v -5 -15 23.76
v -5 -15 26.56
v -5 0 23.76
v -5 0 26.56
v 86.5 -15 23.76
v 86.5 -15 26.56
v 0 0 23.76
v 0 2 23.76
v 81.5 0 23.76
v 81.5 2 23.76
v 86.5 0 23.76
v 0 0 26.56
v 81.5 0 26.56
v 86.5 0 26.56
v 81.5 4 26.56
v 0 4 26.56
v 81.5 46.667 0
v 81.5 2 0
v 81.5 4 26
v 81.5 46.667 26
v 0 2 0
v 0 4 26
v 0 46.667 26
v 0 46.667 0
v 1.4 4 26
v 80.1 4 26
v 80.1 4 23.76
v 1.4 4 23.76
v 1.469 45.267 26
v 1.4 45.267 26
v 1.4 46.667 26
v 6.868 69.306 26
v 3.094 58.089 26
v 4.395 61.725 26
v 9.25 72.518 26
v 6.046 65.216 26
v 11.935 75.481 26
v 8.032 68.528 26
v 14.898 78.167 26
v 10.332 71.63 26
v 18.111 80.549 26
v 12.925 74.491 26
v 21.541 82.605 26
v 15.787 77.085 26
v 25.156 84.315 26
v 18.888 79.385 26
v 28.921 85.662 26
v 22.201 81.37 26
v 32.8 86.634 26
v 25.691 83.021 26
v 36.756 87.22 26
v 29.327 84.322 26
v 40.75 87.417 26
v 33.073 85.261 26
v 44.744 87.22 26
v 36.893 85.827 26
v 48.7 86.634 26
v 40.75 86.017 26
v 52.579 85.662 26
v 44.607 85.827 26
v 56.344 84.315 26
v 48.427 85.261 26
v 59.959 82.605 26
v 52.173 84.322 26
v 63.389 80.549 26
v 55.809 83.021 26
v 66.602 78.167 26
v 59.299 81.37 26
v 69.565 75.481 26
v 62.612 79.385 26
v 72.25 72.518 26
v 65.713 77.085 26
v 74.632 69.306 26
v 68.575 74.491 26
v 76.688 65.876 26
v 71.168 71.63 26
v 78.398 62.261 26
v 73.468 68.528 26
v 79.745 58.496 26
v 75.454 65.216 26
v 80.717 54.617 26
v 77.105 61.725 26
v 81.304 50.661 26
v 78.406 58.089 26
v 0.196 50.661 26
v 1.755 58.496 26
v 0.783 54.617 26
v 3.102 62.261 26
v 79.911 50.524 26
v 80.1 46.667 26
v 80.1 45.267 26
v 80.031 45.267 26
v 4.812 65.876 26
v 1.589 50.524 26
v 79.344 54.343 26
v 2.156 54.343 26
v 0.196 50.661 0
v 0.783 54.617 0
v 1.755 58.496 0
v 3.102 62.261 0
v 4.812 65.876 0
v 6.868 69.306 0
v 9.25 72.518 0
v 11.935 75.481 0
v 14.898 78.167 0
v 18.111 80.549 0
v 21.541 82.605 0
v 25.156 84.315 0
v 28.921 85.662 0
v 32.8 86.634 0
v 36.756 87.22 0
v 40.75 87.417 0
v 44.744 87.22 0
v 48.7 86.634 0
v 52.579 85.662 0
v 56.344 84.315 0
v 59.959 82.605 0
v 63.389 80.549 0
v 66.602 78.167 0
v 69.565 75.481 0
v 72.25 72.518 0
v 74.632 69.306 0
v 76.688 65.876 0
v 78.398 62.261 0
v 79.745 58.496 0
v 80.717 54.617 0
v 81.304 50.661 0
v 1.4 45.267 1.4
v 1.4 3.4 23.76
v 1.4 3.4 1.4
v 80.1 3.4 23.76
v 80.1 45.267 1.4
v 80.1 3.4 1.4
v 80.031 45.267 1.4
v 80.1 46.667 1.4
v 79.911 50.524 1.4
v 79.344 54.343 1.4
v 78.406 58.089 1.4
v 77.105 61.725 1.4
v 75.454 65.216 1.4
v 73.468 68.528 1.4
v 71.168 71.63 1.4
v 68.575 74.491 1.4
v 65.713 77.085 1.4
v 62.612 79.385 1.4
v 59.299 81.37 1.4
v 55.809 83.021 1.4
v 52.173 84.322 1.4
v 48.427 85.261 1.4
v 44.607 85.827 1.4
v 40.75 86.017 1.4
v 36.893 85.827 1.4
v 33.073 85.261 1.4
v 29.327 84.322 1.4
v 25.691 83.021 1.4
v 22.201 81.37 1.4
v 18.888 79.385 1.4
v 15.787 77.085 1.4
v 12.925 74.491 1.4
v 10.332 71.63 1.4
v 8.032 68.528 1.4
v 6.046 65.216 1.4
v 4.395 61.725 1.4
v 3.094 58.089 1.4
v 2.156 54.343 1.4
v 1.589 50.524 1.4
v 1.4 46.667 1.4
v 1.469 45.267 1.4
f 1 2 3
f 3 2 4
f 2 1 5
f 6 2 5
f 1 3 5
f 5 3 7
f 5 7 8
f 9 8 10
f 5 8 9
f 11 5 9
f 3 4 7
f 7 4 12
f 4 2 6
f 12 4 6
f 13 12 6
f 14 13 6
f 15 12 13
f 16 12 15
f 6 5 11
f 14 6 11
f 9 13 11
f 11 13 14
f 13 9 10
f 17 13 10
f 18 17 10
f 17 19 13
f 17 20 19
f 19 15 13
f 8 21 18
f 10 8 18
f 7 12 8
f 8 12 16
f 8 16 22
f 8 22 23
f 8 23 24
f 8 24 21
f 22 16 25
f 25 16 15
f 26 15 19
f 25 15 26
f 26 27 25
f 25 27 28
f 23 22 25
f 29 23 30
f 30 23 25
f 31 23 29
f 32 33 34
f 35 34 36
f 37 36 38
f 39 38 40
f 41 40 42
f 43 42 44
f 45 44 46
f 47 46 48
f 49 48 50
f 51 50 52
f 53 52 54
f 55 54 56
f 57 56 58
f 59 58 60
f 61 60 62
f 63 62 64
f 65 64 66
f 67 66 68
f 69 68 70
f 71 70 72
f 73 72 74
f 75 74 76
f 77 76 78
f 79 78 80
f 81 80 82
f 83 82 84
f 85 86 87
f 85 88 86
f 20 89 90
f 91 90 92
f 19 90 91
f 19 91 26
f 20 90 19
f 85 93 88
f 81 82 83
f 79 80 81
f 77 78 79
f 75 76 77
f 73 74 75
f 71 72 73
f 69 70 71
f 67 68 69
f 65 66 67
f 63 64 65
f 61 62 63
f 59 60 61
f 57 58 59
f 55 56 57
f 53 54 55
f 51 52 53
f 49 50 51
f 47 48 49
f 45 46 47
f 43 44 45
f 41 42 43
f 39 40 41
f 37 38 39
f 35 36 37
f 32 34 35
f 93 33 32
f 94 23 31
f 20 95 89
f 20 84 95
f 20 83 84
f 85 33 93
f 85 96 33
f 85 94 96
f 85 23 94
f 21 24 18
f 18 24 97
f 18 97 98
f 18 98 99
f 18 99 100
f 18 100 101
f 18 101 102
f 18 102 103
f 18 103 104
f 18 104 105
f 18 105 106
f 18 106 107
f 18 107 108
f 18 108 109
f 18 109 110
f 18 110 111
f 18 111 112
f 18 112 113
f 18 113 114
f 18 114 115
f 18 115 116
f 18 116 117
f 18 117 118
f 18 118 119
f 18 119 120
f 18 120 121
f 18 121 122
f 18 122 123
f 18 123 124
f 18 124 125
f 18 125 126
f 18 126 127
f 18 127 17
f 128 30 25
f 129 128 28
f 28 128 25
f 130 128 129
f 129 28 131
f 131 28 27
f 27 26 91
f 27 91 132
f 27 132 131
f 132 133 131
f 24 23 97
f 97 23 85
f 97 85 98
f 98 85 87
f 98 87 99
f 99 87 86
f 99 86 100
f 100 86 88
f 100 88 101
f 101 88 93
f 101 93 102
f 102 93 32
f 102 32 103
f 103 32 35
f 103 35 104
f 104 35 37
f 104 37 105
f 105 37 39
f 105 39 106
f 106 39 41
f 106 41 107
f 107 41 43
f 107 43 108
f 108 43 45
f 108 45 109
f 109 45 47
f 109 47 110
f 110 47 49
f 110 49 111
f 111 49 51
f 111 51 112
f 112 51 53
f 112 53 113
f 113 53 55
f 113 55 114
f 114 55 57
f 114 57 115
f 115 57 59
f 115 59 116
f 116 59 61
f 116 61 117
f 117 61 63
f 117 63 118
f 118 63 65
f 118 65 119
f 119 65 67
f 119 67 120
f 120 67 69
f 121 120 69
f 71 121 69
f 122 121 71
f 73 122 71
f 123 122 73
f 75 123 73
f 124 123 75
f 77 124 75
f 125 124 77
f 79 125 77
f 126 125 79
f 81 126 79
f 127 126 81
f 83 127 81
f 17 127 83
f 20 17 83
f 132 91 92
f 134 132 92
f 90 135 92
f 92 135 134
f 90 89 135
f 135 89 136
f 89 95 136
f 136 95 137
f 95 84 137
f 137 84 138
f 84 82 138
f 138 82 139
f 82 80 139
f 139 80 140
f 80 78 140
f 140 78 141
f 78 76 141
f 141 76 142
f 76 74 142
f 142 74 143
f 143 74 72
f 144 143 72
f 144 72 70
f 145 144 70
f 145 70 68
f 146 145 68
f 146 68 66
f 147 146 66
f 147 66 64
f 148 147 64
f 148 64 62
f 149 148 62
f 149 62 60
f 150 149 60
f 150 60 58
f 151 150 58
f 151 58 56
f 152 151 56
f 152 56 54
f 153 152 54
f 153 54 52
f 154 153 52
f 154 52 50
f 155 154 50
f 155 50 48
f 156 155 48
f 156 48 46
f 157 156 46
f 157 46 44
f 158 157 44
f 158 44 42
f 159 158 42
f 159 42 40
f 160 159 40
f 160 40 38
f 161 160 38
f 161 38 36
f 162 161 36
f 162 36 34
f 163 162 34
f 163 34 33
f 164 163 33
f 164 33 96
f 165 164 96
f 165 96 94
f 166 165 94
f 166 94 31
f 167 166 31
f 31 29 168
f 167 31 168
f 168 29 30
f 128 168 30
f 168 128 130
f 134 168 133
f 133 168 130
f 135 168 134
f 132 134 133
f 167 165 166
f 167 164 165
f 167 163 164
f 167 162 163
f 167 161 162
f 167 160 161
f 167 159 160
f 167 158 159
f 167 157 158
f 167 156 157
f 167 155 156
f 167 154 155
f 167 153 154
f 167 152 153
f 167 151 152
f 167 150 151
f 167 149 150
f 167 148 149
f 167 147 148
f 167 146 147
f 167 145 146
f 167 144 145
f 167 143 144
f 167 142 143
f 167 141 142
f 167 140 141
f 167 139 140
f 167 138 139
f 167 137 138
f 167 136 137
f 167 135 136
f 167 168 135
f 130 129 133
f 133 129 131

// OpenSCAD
// Bird cage water/food feeder bowl for standard door mounting
// Copyright 2011 OhmEye, James Paul
// Licensed GPLv3


$WIDTH=81.5; // width of cage door
$HEIGHT=26; // bowl height
$MOAT=26; // moat height
$LENGTH=70; // bowl 1 length
$THICK=1.4; // wall thickness use perimeters .52mm
$FLANGE=0; // width of flange tabs
$FACES=64; // cylinder 
$SPACE=-3; // space between bowls
$LIP=15;


// flange
translate([0,2,0])rotate([0,0,0])cube([$WIDTH+$FLANGE,$THICK,$HEIGHT]);

// lip
translate([0,-9,$HEIGHT-$THICK*1.6])cube([$WIDTH+$FLANGE,13,$THICK*2]);
translate([-5,0-$LIP,$HEIGHT-$THICK*1.6])cube([$WIDTH+$FLANGE+10,$LIP,$THICK*2]);


// water bowl
difference(){
union(){
	translate([$WIDTH/2+$FLANGE/2,$LENGTH/1.5,0])cylinder(r=$WIDTH/2,h=$MOAT,$fn=$FACES);
	translate([$FLANGE/2,0,0])cube([$WIDTH,$LENGTH/1.5,$MOAT]);
}
	translate([$WIDTH/2+$FLANGE/2,$LENGTH/1.5,$THICK])cylinder(r=$WIDTH/2-$THICK,h=$HEIGHT,$fn=$FACES);
	translate([$FLANGE/2+$THICK,0,$THICK])cube([$WIDTH-$THICK*2,$LENGTH/1.5-$THICK,$HEIGHT]);

	// bevel
	translate([0,-18,0])rotate([0,0,0])cube([$WIDTH+20+$FLANGE,$THICK+20,$HEIGHT+20]);
}
